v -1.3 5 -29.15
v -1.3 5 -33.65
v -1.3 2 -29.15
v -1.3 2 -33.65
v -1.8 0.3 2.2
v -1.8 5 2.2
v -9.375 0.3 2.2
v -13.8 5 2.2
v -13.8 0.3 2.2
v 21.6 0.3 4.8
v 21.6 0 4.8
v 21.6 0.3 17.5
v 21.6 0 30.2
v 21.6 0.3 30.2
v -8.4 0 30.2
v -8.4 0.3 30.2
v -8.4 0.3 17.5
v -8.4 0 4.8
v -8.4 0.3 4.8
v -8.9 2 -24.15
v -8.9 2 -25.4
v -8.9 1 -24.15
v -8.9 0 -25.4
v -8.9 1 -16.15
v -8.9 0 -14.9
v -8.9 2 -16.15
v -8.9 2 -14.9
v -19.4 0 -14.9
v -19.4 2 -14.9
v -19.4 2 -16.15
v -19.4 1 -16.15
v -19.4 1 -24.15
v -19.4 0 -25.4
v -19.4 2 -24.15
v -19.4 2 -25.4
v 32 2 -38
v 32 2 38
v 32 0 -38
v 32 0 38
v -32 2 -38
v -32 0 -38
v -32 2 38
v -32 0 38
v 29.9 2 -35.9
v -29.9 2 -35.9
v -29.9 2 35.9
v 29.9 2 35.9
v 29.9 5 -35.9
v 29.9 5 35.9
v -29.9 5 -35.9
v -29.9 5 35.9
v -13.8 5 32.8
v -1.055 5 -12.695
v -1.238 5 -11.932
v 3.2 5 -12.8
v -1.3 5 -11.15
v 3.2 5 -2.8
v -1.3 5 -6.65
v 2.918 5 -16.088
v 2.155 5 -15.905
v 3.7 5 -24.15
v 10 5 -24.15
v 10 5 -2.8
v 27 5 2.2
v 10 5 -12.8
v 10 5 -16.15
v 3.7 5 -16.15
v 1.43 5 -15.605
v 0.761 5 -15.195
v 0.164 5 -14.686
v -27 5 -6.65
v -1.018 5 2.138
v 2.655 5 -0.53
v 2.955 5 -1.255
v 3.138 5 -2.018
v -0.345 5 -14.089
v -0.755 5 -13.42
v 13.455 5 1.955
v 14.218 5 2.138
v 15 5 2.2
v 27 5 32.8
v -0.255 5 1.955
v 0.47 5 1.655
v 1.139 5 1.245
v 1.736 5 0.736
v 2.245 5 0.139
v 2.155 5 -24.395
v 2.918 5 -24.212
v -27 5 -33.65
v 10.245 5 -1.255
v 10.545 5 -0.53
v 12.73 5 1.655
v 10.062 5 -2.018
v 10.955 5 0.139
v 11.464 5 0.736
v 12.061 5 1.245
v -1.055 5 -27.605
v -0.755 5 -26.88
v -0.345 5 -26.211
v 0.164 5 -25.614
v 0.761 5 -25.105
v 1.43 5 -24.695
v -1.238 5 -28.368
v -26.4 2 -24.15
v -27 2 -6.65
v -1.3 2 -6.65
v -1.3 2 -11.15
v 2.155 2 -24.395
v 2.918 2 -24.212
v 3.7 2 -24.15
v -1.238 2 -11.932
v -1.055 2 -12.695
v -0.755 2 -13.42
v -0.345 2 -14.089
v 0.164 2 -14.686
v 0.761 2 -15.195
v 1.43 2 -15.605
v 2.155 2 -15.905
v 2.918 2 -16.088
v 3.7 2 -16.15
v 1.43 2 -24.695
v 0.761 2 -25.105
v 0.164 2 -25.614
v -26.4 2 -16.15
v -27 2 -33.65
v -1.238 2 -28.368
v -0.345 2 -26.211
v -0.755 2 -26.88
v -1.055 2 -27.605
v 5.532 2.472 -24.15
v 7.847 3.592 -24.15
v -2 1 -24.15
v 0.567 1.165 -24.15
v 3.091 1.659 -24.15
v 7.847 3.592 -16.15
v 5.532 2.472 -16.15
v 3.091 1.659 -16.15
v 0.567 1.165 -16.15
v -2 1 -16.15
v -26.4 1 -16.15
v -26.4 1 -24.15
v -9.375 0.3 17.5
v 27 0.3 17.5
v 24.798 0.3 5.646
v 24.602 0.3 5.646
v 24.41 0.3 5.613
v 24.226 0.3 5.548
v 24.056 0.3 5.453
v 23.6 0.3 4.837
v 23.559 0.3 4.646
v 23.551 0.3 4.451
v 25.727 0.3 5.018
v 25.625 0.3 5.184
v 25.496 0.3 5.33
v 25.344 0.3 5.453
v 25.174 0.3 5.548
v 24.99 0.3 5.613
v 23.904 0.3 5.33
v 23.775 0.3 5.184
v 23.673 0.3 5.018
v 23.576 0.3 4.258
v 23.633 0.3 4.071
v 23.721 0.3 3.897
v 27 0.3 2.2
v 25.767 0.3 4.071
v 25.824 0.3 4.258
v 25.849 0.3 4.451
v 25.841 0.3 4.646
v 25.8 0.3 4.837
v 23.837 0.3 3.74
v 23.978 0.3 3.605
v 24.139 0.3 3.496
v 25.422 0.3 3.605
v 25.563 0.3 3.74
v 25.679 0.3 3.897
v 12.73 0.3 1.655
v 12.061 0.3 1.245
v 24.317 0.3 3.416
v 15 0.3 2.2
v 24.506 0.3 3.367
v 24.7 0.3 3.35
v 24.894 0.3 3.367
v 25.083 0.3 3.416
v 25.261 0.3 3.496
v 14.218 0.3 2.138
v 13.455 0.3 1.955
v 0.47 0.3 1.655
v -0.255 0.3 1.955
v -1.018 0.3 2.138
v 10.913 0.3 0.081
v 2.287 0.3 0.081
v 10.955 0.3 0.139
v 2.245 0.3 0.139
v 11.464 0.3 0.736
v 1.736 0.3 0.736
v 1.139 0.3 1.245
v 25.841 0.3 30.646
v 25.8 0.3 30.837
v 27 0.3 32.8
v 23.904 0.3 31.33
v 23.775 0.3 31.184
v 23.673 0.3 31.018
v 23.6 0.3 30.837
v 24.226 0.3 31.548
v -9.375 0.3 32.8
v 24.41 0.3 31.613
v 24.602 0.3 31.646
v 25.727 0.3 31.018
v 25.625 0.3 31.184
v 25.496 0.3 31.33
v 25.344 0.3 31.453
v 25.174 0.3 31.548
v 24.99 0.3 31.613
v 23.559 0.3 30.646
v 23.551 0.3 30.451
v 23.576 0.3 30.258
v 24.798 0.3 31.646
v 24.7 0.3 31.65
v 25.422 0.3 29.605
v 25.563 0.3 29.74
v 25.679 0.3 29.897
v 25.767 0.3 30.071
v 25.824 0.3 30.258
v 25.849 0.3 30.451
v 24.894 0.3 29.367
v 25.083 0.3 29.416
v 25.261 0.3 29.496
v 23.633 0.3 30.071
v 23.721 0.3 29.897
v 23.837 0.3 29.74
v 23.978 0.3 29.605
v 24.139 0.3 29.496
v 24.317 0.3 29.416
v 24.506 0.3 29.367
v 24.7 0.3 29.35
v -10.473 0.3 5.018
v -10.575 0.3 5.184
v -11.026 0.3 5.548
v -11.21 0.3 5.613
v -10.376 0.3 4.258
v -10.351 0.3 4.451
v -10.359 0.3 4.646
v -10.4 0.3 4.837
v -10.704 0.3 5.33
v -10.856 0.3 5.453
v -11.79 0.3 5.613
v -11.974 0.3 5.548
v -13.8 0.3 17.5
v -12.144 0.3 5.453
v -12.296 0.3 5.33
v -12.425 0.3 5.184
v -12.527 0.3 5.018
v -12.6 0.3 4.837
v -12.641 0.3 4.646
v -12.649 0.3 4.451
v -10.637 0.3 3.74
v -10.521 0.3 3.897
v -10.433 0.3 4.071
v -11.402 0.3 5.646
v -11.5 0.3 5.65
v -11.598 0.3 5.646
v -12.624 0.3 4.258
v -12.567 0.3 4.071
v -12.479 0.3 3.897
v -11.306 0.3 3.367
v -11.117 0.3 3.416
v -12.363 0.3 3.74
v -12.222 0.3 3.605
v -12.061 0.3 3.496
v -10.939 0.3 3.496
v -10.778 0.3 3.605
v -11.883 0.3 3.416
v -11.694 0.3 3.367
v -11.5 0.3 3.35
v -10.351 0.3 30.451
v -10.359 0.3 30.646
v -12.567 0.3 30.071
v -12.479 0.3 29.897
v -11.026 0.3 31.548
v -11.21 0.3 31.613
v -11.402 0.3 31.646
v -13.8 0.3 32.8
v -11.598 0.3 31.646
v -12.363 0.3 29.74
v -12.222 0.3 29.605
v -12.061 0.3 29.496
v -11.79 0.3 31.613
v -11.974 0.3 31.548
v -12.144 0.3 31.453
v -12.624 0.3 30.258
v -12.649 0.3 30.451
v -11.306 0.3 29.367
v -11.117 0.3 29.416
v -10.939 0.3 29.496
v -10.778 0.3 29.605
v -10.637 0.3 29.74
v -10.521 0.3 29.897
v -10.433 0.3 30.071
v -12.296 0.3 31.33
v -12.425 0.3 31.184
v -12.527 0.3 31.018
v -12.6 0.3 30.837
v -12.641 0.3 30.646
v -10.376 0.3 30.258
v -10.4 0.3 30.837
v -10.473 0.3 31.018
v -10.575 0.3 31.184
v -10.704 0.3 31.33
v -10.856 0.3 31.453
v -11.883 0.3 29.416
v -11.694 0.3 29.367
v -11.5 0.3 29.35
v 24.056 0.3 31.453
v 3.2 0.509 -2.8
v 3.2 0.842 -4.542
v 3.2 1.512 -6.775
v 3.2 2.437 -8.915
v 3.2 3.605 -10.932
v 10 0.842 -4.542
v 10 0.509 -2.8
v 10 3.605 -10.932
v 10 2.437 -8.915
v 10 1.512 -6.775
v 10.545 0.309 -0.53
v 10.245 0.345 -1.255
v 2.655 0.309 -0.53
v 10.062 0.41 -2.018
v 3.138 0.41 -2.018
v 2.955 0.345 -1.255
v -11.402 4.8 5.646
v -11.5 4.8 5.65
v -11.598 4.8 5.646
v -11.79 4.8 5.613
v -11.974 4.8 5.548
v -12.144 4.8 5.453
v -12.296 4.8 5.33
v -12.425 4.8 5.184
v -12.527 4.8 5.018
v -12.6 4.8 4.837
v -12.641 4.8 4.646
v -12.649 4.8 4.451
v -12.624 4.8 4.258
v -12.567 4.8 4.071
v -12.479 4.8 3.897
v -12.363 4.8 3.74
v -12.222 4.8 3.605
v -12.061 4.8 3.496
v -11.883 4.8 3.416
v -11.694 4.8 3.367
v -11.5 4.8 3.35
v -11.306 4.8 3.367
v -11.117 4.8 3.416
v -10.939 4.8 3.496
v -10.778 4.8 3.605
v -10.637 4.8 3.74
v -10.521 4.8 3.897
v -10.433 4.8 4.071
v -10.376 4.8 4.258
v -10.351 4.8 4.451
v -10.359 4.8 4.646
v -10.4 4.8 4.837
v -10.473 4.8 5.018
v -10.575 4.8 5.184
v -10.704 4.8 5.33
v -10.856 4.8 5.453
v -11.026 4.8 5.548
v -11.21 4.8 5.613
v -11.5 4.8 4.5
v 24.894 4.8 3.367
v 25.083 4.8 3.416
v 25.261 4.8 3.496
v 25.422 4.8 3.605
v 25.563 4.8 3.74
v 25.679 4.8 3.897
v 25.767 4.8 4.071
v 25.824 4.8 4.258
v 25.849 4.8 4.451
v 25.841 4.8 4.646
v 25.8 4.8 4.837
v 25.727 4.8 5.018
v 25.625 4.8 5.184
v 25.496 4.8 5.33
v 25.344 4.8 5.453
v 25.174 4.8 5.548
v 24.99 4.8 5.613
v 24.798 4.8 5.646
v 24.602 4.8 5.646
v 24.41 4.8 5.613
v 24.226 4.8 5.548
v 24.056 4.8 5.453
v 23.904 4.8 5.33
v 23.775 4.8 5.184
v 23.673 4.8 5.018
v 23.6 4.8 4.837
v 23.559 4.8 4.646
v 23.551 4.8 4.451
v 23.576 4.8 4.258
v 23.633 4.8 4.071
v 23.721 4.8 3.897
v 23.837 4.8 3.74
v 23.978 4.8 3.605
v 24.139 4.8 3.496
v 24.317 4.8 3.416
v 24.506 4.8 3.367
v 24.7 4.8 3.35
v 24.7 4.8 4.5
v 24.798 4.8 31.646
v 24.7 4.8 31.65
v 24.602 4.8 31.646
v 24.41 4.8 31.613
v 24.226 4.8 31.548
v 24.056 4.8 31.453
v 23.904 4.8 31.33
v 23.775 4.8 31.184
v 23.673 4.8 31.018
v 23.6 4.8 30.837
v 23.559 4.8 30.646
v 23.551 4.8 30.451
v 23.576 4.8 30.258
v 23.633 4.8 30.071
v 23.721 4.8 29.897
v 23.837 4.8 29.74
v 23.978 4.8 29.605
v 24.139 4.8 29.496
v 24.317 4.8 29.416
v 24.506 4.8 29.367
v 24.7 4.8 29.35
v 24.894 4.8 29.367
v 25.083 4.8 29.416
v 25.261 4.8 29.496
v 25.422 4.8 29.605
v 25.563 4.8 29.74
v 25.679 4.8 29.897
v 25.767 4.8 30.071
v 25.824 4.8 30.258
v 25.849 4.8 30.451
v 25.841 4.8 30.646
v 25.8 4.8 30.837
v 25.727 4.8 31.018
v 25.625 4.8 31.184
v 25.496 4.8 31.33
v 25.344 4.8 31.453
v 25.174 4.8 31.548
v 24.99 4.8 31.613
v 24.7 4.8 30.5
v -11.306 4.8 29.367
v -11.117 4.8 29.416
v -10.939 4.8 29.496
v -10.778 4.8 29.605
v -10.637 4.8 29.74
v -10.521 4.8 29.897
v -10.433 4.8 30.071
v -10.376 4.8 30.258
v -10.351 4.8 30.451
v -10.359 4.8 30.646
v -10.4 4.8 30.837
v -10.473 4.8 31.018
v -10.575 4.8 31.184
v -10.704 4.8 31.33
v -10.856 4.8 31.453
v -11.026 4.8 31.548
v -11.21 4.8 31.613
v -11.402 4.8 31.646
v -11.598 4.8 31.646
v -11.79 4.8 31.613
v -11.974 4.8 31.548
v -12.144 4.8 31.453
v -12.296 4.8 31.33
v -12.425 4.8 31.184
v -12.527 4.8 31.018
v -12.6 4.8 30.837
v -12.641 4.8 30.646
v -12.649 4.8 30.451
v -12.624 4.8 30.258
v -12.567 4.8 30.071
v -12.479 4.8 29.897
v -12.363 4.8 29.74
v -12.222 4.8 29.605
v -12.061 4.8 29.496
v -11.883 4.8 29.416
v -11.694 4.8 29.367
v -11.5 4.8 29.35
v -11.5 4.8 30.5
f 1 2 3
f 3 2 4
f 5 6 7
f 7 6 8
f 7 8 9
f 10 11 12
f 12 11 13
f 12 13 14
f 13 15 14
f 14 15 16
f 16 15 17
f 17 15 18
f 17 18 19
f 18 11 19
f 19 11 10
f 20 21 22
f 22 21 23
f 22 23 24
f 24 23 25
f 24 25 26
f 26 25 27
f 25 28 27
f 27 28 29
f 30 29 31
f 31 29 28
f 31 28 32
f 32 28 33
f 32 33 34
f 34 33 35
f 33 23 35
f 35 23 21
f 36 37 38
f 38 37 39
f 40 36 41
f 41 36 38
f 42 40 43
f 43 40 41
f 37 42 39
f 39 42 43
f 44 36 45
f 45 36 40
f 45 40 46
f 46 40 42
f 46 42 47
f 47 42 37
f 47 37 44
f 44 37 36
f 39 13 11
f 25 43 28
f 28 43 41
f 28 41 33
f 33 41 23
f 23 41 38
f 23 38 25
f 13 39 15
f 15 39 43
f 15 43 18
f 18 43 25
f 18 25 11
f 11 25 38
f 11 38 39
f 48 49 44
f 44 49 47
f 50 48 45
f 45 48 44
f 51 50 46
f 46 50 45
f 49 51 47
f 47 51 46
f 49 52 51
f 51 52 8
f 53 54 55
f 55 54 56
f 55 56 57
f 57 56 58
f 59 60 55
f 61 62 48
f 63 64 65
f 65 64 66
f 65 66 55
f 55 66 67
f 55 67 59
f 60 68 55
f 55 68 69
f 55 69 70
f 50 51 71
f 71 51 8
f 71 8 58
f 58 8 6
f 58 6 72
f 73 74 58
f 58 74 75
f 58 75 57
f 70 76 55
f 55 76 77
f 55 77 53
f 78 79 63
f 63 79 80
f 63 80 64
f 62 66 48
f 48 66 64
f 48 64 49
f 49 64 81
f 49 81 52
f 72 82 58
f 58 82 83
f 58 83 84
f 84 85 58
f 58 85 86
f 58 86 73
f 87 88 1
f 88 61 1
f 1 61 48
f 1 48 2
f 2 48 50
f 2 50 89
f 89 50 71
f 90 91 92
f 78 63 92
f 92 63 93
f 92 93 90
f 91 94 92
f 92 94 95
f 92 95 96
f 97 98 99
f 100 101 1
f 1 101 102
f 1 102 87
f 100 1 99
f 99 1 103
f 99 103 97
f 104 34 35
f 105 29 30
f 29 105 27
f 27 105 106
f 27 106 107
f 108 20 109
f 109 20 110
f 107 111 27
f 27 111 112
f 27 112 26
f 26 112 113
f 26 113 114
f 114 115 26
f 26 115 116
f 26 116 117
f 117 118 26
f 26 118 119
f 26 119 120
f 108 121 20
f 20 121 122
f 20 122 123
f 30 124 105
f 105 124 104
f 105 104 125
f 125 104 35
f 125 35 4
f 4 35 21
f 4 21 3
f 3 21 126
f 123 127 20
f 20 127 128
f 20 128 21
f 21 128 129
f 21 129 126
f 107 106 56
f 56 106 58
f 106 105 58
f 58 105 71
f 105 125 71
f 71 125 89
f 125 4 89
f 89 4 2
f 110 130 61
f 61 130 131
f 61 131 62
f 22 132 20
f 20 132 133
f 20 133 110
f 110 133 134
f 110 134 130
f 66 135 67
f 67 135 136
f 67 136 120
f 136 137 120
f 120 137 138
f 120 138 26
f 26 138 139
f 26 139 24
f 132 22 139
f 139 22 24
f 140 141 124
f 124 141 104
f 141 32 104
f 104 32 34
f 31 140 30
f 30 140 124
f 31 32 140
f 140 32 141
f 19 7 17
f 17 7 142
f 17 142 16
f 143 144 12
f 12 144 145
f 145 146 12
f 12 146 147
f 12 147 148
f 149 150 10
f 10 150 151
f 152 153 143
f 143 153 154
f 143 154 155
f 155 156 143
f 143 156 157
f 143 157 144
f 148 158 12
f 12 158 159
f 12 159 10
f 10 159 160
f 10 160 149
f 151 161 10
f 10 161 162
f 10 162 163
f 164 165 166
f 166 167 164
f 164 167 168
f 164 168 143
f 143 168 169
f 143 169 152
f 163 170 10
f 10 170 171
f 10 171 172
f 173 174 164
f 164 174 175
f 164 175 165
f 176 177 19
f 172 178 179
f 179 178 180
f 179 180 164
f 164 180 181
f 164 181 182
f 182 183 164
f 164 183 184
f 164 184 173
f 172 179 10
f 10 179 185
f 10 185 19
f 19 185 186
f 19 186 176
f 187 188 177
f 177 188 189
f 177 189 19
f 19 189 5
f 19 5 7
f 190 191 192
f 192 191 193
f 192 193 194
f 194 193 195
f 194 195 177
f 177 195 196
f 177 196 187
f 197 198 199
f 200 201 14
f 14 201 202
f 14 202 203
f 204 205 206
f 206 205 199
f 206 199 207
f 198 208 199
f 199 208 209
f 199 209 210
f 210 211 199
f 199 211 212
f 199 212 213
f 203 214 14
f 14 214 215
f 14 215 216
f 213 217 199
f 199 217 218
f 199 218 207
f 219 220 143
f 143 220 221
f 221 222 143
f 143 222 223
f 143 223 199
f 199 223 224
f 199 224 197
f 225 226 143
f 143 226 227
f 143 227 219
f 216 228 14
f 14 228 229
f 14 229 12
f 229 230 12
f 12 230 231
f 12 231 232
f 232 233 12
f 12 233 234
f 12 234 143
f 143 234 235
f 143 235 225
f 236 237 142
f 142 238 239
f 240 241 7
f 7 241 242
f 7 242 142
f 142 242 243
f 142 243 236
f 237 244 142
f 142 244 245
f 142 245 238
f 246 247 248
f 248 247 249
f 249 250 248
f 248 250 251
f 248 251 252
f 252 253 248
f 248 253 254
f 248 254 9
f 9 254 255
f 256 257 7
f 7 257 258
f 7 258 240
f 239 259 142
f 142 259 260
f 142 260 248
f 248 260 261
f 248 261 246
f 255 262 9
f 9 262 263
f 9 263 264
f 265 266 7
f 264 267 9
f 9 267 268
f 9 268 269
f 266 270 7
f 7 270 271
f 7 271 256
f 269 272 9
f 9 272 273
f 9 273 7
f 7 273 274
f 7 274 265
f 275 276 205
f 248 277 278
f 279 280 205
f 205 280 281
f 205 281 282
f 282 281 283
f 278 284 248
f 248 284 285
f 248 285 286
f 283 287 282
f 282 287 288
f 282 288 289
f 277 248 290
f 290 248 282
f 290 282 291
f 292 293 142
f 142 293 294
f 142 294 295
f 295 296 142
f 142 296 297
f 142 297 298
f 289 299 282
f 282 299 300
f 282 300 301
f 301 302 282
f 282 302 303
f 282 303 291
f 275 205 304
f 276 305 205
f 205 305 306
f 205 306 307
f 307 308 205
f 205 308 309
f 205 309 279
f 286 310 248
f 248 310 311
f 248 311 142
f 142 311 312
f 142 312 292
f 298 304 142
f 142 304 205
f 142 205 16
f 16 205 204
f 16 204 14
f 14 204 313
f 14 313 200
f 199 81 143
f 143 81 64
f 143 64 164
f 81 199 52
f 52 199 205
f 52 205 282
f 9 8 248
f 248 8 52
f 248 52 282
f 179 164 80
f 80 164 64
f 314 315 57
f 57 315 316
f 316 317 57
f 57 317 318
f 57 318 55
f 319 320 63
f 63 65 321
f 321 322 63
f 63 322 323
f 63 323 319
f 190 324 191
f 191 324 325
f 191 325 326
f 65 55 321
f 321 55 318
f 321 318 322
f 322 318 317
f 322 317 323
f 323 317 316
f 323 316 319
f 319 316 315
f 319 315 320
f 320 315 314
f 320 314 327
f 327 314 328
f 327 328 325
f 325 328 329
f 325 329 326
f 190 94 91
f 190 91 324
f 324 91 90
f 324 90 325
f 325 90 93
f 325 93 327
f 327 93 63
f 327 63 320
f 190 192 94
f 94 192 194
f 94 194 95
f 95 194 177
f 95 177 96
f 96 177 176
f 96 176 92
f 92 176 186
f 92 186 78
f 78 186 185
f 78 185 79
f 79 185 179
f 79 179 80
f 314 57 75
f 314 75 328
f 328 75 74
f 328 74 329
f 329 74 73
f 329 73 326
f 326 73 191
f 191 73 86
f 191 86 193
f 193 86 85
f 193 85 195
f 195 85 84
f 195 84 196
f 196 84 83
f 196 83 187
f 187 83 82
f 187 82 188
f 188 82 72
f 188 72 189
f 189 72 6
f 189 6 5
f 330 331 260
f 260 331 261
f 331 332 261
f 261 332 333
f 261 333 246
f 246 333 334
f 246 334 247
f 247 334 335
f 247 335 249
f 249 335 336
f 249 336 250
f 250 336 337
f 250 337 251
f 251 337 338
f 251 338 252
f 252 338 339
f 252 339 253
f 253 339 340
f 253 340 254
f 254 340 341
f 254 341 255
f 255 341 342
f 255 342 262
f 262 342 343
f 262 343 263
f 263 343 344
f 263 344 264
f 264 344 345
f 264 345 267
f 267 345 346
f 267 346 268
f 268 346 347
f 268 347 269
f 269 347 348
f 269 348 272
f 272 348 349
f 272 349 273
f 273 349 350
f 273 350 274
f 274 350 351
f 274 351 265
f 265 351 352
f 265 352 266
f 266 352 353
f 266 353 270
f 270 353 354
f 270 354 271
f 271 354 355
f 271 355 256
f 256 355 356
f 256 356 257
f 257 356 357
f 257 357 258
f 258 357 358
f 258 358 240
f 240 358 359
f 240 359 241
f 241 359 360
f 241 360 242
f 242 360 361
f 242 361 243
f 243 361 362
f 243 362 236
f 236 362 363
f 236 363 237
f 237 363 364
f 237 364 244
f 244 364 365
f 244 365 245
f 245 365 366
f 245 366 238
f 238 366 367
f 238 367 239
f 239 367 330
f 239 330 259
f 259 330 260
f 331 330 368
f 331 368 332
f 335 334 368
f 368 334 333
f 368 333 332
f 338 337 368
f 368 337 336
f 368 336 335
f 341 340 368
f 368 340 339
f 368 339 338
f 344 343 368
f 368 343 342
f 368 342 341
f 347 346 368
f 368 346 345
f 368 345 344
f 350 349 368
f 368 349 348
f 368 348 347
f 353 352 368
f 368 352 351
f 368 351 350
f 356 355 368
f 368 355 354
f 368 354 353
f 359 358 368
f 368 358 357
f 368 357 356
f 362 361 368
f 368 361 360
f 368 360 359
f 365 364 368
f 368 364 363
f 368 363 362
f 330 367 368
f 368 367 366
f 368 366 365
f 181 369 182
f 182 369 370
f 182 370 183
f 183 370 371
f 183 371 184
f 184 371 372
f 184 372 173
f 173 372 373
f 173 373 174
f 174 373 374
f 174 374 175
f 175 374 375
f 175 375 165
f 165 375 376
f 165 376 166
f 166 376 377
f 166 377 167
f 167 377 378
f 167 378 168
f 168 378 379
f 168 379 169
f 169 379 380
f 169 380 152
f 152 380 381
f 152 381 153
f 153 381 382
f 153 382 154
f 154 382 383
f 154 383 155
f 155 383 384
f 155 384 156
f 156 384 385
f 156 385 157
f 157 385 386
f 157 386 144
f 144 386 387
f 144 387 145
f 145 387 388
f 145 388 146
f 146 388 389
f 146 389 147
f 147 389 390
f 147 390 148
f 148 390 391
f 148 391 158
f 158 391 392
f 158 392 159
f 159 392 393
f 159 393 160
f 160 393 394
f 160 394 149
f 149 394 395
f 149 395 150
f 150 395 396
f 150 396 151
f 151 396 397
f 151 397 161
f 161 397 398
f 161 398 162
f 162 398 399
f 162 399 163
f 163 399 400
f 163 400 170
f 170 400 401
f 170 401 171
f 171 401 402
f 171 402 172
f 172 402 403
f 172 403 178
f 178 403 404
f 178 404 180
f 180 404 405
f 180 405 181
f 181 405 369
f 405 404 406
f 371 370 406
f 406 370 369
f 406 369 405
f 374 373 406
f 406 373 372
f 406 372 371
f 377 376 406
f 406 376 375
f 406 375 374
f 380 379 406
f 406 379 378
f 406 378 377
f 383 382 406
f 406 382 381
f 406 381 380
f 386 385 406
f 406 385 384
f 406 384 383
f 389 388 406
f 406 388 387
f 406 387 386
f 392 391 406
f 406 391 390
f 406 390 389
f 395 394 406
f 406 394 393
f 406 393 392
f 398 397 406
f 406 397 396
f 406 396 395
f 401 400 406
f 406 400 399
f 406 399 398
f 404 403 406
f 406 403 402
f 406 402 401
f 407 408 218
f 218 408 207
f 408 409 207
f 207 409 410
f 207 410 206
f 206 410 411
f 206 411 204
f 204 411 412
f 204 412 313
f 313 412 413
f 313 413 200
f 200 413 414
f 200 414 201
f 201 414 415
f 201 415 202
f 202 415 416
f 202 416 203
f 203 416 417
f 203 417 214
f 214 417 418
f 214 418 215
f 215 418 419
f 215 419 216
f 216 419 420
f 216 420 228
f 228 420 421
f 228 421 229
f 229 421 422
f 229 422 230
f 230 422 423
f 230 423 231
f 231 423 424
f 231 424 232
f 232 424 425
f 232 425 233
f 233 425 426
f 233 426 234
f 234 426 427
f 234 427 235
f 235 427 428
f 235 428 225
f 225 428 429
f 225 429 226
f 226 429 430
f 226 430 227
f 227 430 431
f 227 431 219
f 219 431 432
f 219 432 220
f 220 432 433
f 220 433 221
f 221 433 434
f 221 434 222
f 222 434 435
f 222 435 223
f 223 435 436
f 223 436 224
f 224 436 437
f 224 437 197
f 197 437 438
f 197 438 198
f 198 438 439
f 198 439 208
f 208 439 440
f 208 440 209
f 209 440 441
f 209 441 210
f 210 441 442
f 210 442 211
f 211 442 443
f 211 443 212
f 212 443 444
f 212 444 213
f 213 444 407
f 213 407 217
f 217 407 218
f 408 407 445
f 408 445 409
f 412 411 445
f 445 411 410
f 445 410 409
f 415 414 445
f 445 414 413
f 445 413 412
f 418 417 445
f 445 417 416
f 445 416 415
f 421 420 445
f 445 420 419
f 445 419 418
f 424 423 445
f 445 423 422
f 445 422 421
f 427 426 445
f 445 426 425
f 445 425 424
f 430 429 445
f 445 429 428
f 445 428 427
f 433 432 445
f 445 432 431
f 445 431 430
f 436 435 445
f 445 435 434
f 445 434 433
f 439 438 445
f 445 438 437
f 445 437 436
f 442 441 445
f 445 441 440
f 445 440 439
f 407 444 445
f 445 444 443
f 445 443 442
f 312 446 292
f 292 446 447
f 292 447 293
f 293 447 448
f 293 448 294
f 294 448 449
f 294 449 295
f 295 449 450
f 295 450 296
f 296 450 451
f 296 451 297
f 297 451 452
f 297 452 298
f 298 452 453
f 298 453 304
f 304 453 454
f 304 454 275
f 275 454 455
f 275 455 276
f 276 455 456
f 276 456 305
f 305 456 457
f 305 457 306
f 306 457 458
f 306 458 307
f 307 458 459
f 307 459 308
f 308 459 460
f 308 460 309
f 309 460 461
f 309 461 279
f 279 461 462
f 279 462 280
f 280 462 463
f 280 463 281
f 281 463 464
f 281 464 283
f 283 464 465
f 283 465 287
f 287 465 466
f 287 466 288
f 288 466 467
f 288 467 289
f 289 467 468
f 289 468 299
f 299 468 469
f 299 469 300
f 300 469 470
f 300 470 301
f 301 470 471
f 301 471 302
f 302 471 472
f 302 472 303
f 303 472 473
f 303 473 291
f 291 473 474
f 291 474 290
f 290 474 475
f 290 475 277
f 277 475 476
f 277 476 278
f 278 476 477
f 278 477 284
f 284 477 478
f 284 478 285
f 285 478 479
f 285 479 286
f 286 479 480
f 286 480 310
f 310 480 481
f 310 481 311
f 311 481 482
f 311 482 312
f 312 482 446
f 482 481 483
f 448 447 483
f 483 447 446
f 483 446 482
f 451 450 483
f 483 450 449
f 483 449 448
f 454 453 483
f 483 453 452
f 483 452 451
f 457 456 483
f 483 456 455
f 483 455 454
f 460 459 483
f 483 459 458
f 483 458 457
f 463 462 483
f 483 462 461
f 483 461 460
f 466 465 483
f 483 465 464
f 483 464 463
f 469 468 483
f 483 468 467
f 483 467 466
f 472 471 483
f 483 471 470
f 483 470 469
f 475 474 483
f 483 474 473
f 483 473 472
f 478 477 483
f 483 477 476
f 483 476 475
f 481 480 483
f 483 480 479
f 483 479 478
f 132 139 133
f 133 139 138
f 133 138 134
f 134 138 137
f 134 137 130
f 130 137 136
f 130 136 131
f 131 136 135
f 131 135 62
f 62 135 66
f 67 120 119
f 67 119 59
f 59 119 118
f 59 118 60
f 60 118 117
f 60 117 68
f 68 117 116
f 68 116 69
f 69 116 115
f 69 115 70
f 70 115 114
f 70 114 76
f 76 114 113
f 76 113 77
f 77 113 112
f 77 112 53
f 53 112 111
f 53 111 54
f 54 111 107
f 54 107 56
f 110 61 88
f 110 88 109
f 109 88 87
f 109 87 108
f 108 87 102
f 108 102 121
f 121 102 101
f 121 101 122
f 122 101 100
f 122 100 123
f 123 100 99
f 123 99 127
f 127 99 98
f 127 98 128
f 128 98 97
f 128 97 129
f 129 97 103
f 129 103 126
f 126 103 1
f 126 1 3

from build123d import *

# Parameters (mm, degrees)
SKETCH1_W           = 64
SKETCH1_H           = 76
TOP_DEPTH           = 2
SKETCH2_W           = 59.8
SKETCH2_H           = 71.8
BOSS_EXTRUDE2_DEPTH = 3
SKETCH3_W           = 10.5
SKETCH3_H           = 10.5
CUT_EXTRUDE1_DEPTH  = 6
SKETCH10_W          = 25.7
SKETCH10_H          = 27
CUT_EXTRUDE8_DEPTH  = 3
SKETCH11_W          = 7
SKETCH11_H          = 8
CUT_EXTRUDE9_DEPTH  = 1
SKETCH6_W           = 30
SKETCH6_H           = 25.4
CUT_EXTRUDE4_DEPTH  = 6
SKETCH7_R           = 1.15
BOSS_EXTRUDE3_DEPTH = 4.7
SKETCH8_W           = 40.8
SKETCH8_H           = 30.6
CUT_EXTRUDE6_DEPTH  = 4.7
SKETCH9_W           = 6.8
SKETCH9_H           = 15
CUT_EXTRUDE7_DEPTH  = 4.7
FILLET2_R           = 20
FILLET3_START       = 0.3
FILLET3_DEPTH       = 5.7
FILLET3_START_2     = 1
FILLET3_2_DEPTH     = 11
SKETCH14_R          = 1.15
BOSS_EXTRUDE4_DEPTH = 4.5
SKETCH12_W          = 11.9
SKETCH12_H          = 8
CUT_EXTRUDE10_DEPTH = 4
FILLET4_R           = 20
FILLET5_R           = 5


with BuildPart() as part:
    # Sketch1 → Top (new body)
    with BuildSketch(Plane(origin=(0, 0, 0), x_dir=(1, 0, 0), z_dir=(0, 1, 0))):
        Rectangle(SKETCH1_W, SKETCH1_H)
    extrude(amount=TOP_DEPTH)

    # Sketch2 → Boss-Extrude2 (add)
    with BuildSketch(Plane(origin=(0, 2, 0), x_dir=(1, 0, 0), z_dir=(0, 1, 0))):
        Rectangle(SKETCH2_W, SKETCH2_H)
    extrude(amount=BOSS_EXTRUDE2_DEPTH)

    # Sketch3 → Cut-Extrude1 (cut)
    with BuildSketch(Plane(origin=(0, 5, 0), x_dir=(1, 0, 0), z_dir=(0, 1, 0))):
        with Locations((-14.15, 20.15)):
            Rectangle(SKETCH3_W, SKETCH3_H)
    extrude(amount=-CUT_EXTRUDE1_DEPTH, mode=Mode.SUBTRACT)

    # Sketch10 → Cut-Extrude8 (cut)
    with BuildSketch(Plane(origin=(0, 5, 0), x_dir=(1, 0, 0), z_dir=(0, 1, 0))):
        with Locations((-14.15, 20.15)):
            Rectangle(SKETCH10_W, SKETCH10_H)
    extrude(amount=-CUT_EXTRUDE8_DEPTH, mode=Mode.SUBTRACT)

    # Sketch11 → Cut-Extrude9 (cut)
    with BuildSketch(Plane(origin=(0, 2, 0), x_dir=(1, 0, 0), z_dir=(0, 1, 0))):
        with Locations((-22.9, 20.15)):
            Rectangle(SKETCH11_W, SKETCH11_H)
        with Locations((-5.4, 20.15)):
            Rectangle(SKETCH11_W, SKETCH11_H)
    extrude(amount=-CUT_EXTRUDE9_DEPTH, mode=Mode.SUBTRACT)

    # Sketch6 → Cut-Extrude4 (cut)
    with BuildSketch(Plane(origin=(0, 5, 0), x_dir=(1, 0, 0), z_dir=(0, 1, 0))):
        with Locations((6.6, -17.5)):
            Rectangle(SKETCH6_W, SKETCH6_H)
    extrude(amount=-CUT_EXTRUDE4_DEPTH, mode=Mode.SUBTRACT)

    # Sketch7 → Boss-Extrude3 (add)
    with BuildSketch(Plane(origin=(0, 5, 0), x_dir=(1, 0, 0), z_dir=(0, 1, 0))):
        with Locations((-11.5, -4.5)):
            Circle(SKETCH7_R)
        with Locations((-11.5, -30.5)):
            Circle(SKETCH7_R)
        with Locations((24.7, -30.5)):
            Circle(SKETCH7_R)
        with Locations((24.7, -4.5)):
            Circle(SKETCH7_R)
    extrude(amount=-BOSS_EXTRUDE3_DEPTH)

    # Sketch8 → Cut-Extrude6 (cut)
    with BuildSketch(Plane(origin=(0, 5, 0), x_dir=(1, 0, 0), z_dir=(0, 1, 0))):
        with Locations((6.6, -17.5)):
            Rectangle(SKETCH8_W, SKETCH8_H)
    extrude(amount=-CUT_EXTRUDE6_DEPTH, mode=Mode.SUBTRACT)

    # Sketch9 → Cut-Extrude7 (cut)
    with BuildSketch(Plane(origin=(0, 5, 0), x_dir=(1, 0, 0), z_dir=(0, 1, 0))):
        with Locations((6.6, 5.3)):
            Rectangle(SKETCH9_W, SKETCH9_H)
    extrude(amount=-CUT_EXTRUDE7_DEPTH, mode=Mode.SUBTRACT)

    # Fillet2
    # the kernel refuses this fillet: 20 mm, written as the material it adds along each edge
    with BuildSketch(Plane(origin=(3.2, 0.3, -12.8), x_dir=(0, 0, 1), z_dir=(1, 0, 0))) as fillet2_piece_1:
        with BuildLine():
            CenterArc((12.880605576, -20), FILLET2_R, 90, 40.093007985)
            Line((0, -4.7), (0, 0))
            Line((0, 0), (12.880605576, 0))
        make_face()
    extrude(amount=6.8)

    # Fillet3: read off the stored shape, not the designer's step
    # Fillet3 outline → Fillet3 (cut)
    with BuildSketch(Plane(origin=(0, 0, 0), x_dir=(1, 0, 0), z_dir=(0, 1, 0)).offset(FILLET3_START)):
        with BuildLine():
            ThreePointArc((15, -2.2), (11.464466094, -0.735533906), (10, 2.8))
            Line((10, 2.8), (10, -2.2))
            Line((10, -2.2), (15, -2.2))
        make_face()
        with BuildLine():
            ThreePointArc((3.2, 2.8), (1.735533906, -0.735533906), (-1.8, -2.2))
            Line((-1.8, -2.2), (3.2, -2.2))
            Line((3.2, -2.2), (3.2, 2.8))
        make_face()
    extrude(amount=FILLET3_DEPTH, mode=Mode.SUBTRACT)

    # Fillet3 2 outline → Fillet3 2 (add)
    with BuildSketch(Plane.YZ.offset(FILLET3_START_2)):
        with BuildLine():
            Line((0.3, 0.080605576), (0.3, -2.8))
            Line((0.3, -2.8), (0.508534377, -2.8))
            ThreePointArc((0.508534377, -2.8), (0.35220172, -1.363466364), (0.3, 0.080605576))
        make_face()
    extrude(amount=FILLET3_2_DEPTH)

    # Sketch14 → Boss-Extrude4 (add)
    with BuildSketch(Plane(origin=(0, 0.3, 0), x_dir=(1, 0, 0), z_dir=(0, 1, 0))):
        with Locations(Location((-11.5, -4.5, 0), (0, 0, 270))):
            Circle(SKETCH14_R)
        with Locations(Location((24.7, -4.5, 0), (0, 0, 90))):
            Circle(SKETCH14_R)
        with Locations(Location((24.7, -30.5, 0), (0, 0, 270))):
            Circle(SKETCH14_R)
        with Locations(Location((-11.5, -30.5, 0), (0, 0, 90))):
            Circle(SKETCH14_R)
    extrude(amount=BOSS_EXTRUDE4_DEPTH)

    # Sketch12 → Cut-Extrude10 (cut)
    with BuildSketch(Plane(origin=(0, 5, 0), x_dir=(1, 0, 0), z_dir=(0, 1, 0))):
        with Locations((4.05, 20.15)):
            Rectangle(SKETCH12_W, SKETCH12_H)
    extrude(amount=-CUT_EXTRUDE10_DEPTH, mode=Mode.SUBTRACT)

    # Fillet4
    # the kernel refuses this fillet: 20 mm, written as the material it adds along each edge
    with BuildSketch(Plane(origin=(10, 1, -54.15), x_dir=(-1, 0, 0), z_dir=(0, 0, 1))) as fillet4_piece_1_section:
        with BuildLine():
            CenterArc((12, -20), FILLET4_R, 90, 36.869897646)
            Line((0, -4), (0, 0))
            Line((0, 0), (12, 0))
        make_face()
    fillet4_piece_1 = extrude(amount=38, mode=Mode.PRIVATE)
    fillet4_piece_1 = split(fillet4_piece_1, bisect_by=Plane(origin=(10, 1, -35.9), z_dir=(0, 0, 1)), keep=Keep.TOP, mode=Mode.PRIVATE)
    add(fillet4_piece_1)

    # Fillet5
    fillet5_edges = [part.edges().sort_by_distance(p)[0] for p in [
        (-1.3, 3.5, -24.15),
        (-1.3, 3.5, -16.15),
    ]]
    fillet(fillet5_edges, radius=FILLET5_R)


solid = part.part
